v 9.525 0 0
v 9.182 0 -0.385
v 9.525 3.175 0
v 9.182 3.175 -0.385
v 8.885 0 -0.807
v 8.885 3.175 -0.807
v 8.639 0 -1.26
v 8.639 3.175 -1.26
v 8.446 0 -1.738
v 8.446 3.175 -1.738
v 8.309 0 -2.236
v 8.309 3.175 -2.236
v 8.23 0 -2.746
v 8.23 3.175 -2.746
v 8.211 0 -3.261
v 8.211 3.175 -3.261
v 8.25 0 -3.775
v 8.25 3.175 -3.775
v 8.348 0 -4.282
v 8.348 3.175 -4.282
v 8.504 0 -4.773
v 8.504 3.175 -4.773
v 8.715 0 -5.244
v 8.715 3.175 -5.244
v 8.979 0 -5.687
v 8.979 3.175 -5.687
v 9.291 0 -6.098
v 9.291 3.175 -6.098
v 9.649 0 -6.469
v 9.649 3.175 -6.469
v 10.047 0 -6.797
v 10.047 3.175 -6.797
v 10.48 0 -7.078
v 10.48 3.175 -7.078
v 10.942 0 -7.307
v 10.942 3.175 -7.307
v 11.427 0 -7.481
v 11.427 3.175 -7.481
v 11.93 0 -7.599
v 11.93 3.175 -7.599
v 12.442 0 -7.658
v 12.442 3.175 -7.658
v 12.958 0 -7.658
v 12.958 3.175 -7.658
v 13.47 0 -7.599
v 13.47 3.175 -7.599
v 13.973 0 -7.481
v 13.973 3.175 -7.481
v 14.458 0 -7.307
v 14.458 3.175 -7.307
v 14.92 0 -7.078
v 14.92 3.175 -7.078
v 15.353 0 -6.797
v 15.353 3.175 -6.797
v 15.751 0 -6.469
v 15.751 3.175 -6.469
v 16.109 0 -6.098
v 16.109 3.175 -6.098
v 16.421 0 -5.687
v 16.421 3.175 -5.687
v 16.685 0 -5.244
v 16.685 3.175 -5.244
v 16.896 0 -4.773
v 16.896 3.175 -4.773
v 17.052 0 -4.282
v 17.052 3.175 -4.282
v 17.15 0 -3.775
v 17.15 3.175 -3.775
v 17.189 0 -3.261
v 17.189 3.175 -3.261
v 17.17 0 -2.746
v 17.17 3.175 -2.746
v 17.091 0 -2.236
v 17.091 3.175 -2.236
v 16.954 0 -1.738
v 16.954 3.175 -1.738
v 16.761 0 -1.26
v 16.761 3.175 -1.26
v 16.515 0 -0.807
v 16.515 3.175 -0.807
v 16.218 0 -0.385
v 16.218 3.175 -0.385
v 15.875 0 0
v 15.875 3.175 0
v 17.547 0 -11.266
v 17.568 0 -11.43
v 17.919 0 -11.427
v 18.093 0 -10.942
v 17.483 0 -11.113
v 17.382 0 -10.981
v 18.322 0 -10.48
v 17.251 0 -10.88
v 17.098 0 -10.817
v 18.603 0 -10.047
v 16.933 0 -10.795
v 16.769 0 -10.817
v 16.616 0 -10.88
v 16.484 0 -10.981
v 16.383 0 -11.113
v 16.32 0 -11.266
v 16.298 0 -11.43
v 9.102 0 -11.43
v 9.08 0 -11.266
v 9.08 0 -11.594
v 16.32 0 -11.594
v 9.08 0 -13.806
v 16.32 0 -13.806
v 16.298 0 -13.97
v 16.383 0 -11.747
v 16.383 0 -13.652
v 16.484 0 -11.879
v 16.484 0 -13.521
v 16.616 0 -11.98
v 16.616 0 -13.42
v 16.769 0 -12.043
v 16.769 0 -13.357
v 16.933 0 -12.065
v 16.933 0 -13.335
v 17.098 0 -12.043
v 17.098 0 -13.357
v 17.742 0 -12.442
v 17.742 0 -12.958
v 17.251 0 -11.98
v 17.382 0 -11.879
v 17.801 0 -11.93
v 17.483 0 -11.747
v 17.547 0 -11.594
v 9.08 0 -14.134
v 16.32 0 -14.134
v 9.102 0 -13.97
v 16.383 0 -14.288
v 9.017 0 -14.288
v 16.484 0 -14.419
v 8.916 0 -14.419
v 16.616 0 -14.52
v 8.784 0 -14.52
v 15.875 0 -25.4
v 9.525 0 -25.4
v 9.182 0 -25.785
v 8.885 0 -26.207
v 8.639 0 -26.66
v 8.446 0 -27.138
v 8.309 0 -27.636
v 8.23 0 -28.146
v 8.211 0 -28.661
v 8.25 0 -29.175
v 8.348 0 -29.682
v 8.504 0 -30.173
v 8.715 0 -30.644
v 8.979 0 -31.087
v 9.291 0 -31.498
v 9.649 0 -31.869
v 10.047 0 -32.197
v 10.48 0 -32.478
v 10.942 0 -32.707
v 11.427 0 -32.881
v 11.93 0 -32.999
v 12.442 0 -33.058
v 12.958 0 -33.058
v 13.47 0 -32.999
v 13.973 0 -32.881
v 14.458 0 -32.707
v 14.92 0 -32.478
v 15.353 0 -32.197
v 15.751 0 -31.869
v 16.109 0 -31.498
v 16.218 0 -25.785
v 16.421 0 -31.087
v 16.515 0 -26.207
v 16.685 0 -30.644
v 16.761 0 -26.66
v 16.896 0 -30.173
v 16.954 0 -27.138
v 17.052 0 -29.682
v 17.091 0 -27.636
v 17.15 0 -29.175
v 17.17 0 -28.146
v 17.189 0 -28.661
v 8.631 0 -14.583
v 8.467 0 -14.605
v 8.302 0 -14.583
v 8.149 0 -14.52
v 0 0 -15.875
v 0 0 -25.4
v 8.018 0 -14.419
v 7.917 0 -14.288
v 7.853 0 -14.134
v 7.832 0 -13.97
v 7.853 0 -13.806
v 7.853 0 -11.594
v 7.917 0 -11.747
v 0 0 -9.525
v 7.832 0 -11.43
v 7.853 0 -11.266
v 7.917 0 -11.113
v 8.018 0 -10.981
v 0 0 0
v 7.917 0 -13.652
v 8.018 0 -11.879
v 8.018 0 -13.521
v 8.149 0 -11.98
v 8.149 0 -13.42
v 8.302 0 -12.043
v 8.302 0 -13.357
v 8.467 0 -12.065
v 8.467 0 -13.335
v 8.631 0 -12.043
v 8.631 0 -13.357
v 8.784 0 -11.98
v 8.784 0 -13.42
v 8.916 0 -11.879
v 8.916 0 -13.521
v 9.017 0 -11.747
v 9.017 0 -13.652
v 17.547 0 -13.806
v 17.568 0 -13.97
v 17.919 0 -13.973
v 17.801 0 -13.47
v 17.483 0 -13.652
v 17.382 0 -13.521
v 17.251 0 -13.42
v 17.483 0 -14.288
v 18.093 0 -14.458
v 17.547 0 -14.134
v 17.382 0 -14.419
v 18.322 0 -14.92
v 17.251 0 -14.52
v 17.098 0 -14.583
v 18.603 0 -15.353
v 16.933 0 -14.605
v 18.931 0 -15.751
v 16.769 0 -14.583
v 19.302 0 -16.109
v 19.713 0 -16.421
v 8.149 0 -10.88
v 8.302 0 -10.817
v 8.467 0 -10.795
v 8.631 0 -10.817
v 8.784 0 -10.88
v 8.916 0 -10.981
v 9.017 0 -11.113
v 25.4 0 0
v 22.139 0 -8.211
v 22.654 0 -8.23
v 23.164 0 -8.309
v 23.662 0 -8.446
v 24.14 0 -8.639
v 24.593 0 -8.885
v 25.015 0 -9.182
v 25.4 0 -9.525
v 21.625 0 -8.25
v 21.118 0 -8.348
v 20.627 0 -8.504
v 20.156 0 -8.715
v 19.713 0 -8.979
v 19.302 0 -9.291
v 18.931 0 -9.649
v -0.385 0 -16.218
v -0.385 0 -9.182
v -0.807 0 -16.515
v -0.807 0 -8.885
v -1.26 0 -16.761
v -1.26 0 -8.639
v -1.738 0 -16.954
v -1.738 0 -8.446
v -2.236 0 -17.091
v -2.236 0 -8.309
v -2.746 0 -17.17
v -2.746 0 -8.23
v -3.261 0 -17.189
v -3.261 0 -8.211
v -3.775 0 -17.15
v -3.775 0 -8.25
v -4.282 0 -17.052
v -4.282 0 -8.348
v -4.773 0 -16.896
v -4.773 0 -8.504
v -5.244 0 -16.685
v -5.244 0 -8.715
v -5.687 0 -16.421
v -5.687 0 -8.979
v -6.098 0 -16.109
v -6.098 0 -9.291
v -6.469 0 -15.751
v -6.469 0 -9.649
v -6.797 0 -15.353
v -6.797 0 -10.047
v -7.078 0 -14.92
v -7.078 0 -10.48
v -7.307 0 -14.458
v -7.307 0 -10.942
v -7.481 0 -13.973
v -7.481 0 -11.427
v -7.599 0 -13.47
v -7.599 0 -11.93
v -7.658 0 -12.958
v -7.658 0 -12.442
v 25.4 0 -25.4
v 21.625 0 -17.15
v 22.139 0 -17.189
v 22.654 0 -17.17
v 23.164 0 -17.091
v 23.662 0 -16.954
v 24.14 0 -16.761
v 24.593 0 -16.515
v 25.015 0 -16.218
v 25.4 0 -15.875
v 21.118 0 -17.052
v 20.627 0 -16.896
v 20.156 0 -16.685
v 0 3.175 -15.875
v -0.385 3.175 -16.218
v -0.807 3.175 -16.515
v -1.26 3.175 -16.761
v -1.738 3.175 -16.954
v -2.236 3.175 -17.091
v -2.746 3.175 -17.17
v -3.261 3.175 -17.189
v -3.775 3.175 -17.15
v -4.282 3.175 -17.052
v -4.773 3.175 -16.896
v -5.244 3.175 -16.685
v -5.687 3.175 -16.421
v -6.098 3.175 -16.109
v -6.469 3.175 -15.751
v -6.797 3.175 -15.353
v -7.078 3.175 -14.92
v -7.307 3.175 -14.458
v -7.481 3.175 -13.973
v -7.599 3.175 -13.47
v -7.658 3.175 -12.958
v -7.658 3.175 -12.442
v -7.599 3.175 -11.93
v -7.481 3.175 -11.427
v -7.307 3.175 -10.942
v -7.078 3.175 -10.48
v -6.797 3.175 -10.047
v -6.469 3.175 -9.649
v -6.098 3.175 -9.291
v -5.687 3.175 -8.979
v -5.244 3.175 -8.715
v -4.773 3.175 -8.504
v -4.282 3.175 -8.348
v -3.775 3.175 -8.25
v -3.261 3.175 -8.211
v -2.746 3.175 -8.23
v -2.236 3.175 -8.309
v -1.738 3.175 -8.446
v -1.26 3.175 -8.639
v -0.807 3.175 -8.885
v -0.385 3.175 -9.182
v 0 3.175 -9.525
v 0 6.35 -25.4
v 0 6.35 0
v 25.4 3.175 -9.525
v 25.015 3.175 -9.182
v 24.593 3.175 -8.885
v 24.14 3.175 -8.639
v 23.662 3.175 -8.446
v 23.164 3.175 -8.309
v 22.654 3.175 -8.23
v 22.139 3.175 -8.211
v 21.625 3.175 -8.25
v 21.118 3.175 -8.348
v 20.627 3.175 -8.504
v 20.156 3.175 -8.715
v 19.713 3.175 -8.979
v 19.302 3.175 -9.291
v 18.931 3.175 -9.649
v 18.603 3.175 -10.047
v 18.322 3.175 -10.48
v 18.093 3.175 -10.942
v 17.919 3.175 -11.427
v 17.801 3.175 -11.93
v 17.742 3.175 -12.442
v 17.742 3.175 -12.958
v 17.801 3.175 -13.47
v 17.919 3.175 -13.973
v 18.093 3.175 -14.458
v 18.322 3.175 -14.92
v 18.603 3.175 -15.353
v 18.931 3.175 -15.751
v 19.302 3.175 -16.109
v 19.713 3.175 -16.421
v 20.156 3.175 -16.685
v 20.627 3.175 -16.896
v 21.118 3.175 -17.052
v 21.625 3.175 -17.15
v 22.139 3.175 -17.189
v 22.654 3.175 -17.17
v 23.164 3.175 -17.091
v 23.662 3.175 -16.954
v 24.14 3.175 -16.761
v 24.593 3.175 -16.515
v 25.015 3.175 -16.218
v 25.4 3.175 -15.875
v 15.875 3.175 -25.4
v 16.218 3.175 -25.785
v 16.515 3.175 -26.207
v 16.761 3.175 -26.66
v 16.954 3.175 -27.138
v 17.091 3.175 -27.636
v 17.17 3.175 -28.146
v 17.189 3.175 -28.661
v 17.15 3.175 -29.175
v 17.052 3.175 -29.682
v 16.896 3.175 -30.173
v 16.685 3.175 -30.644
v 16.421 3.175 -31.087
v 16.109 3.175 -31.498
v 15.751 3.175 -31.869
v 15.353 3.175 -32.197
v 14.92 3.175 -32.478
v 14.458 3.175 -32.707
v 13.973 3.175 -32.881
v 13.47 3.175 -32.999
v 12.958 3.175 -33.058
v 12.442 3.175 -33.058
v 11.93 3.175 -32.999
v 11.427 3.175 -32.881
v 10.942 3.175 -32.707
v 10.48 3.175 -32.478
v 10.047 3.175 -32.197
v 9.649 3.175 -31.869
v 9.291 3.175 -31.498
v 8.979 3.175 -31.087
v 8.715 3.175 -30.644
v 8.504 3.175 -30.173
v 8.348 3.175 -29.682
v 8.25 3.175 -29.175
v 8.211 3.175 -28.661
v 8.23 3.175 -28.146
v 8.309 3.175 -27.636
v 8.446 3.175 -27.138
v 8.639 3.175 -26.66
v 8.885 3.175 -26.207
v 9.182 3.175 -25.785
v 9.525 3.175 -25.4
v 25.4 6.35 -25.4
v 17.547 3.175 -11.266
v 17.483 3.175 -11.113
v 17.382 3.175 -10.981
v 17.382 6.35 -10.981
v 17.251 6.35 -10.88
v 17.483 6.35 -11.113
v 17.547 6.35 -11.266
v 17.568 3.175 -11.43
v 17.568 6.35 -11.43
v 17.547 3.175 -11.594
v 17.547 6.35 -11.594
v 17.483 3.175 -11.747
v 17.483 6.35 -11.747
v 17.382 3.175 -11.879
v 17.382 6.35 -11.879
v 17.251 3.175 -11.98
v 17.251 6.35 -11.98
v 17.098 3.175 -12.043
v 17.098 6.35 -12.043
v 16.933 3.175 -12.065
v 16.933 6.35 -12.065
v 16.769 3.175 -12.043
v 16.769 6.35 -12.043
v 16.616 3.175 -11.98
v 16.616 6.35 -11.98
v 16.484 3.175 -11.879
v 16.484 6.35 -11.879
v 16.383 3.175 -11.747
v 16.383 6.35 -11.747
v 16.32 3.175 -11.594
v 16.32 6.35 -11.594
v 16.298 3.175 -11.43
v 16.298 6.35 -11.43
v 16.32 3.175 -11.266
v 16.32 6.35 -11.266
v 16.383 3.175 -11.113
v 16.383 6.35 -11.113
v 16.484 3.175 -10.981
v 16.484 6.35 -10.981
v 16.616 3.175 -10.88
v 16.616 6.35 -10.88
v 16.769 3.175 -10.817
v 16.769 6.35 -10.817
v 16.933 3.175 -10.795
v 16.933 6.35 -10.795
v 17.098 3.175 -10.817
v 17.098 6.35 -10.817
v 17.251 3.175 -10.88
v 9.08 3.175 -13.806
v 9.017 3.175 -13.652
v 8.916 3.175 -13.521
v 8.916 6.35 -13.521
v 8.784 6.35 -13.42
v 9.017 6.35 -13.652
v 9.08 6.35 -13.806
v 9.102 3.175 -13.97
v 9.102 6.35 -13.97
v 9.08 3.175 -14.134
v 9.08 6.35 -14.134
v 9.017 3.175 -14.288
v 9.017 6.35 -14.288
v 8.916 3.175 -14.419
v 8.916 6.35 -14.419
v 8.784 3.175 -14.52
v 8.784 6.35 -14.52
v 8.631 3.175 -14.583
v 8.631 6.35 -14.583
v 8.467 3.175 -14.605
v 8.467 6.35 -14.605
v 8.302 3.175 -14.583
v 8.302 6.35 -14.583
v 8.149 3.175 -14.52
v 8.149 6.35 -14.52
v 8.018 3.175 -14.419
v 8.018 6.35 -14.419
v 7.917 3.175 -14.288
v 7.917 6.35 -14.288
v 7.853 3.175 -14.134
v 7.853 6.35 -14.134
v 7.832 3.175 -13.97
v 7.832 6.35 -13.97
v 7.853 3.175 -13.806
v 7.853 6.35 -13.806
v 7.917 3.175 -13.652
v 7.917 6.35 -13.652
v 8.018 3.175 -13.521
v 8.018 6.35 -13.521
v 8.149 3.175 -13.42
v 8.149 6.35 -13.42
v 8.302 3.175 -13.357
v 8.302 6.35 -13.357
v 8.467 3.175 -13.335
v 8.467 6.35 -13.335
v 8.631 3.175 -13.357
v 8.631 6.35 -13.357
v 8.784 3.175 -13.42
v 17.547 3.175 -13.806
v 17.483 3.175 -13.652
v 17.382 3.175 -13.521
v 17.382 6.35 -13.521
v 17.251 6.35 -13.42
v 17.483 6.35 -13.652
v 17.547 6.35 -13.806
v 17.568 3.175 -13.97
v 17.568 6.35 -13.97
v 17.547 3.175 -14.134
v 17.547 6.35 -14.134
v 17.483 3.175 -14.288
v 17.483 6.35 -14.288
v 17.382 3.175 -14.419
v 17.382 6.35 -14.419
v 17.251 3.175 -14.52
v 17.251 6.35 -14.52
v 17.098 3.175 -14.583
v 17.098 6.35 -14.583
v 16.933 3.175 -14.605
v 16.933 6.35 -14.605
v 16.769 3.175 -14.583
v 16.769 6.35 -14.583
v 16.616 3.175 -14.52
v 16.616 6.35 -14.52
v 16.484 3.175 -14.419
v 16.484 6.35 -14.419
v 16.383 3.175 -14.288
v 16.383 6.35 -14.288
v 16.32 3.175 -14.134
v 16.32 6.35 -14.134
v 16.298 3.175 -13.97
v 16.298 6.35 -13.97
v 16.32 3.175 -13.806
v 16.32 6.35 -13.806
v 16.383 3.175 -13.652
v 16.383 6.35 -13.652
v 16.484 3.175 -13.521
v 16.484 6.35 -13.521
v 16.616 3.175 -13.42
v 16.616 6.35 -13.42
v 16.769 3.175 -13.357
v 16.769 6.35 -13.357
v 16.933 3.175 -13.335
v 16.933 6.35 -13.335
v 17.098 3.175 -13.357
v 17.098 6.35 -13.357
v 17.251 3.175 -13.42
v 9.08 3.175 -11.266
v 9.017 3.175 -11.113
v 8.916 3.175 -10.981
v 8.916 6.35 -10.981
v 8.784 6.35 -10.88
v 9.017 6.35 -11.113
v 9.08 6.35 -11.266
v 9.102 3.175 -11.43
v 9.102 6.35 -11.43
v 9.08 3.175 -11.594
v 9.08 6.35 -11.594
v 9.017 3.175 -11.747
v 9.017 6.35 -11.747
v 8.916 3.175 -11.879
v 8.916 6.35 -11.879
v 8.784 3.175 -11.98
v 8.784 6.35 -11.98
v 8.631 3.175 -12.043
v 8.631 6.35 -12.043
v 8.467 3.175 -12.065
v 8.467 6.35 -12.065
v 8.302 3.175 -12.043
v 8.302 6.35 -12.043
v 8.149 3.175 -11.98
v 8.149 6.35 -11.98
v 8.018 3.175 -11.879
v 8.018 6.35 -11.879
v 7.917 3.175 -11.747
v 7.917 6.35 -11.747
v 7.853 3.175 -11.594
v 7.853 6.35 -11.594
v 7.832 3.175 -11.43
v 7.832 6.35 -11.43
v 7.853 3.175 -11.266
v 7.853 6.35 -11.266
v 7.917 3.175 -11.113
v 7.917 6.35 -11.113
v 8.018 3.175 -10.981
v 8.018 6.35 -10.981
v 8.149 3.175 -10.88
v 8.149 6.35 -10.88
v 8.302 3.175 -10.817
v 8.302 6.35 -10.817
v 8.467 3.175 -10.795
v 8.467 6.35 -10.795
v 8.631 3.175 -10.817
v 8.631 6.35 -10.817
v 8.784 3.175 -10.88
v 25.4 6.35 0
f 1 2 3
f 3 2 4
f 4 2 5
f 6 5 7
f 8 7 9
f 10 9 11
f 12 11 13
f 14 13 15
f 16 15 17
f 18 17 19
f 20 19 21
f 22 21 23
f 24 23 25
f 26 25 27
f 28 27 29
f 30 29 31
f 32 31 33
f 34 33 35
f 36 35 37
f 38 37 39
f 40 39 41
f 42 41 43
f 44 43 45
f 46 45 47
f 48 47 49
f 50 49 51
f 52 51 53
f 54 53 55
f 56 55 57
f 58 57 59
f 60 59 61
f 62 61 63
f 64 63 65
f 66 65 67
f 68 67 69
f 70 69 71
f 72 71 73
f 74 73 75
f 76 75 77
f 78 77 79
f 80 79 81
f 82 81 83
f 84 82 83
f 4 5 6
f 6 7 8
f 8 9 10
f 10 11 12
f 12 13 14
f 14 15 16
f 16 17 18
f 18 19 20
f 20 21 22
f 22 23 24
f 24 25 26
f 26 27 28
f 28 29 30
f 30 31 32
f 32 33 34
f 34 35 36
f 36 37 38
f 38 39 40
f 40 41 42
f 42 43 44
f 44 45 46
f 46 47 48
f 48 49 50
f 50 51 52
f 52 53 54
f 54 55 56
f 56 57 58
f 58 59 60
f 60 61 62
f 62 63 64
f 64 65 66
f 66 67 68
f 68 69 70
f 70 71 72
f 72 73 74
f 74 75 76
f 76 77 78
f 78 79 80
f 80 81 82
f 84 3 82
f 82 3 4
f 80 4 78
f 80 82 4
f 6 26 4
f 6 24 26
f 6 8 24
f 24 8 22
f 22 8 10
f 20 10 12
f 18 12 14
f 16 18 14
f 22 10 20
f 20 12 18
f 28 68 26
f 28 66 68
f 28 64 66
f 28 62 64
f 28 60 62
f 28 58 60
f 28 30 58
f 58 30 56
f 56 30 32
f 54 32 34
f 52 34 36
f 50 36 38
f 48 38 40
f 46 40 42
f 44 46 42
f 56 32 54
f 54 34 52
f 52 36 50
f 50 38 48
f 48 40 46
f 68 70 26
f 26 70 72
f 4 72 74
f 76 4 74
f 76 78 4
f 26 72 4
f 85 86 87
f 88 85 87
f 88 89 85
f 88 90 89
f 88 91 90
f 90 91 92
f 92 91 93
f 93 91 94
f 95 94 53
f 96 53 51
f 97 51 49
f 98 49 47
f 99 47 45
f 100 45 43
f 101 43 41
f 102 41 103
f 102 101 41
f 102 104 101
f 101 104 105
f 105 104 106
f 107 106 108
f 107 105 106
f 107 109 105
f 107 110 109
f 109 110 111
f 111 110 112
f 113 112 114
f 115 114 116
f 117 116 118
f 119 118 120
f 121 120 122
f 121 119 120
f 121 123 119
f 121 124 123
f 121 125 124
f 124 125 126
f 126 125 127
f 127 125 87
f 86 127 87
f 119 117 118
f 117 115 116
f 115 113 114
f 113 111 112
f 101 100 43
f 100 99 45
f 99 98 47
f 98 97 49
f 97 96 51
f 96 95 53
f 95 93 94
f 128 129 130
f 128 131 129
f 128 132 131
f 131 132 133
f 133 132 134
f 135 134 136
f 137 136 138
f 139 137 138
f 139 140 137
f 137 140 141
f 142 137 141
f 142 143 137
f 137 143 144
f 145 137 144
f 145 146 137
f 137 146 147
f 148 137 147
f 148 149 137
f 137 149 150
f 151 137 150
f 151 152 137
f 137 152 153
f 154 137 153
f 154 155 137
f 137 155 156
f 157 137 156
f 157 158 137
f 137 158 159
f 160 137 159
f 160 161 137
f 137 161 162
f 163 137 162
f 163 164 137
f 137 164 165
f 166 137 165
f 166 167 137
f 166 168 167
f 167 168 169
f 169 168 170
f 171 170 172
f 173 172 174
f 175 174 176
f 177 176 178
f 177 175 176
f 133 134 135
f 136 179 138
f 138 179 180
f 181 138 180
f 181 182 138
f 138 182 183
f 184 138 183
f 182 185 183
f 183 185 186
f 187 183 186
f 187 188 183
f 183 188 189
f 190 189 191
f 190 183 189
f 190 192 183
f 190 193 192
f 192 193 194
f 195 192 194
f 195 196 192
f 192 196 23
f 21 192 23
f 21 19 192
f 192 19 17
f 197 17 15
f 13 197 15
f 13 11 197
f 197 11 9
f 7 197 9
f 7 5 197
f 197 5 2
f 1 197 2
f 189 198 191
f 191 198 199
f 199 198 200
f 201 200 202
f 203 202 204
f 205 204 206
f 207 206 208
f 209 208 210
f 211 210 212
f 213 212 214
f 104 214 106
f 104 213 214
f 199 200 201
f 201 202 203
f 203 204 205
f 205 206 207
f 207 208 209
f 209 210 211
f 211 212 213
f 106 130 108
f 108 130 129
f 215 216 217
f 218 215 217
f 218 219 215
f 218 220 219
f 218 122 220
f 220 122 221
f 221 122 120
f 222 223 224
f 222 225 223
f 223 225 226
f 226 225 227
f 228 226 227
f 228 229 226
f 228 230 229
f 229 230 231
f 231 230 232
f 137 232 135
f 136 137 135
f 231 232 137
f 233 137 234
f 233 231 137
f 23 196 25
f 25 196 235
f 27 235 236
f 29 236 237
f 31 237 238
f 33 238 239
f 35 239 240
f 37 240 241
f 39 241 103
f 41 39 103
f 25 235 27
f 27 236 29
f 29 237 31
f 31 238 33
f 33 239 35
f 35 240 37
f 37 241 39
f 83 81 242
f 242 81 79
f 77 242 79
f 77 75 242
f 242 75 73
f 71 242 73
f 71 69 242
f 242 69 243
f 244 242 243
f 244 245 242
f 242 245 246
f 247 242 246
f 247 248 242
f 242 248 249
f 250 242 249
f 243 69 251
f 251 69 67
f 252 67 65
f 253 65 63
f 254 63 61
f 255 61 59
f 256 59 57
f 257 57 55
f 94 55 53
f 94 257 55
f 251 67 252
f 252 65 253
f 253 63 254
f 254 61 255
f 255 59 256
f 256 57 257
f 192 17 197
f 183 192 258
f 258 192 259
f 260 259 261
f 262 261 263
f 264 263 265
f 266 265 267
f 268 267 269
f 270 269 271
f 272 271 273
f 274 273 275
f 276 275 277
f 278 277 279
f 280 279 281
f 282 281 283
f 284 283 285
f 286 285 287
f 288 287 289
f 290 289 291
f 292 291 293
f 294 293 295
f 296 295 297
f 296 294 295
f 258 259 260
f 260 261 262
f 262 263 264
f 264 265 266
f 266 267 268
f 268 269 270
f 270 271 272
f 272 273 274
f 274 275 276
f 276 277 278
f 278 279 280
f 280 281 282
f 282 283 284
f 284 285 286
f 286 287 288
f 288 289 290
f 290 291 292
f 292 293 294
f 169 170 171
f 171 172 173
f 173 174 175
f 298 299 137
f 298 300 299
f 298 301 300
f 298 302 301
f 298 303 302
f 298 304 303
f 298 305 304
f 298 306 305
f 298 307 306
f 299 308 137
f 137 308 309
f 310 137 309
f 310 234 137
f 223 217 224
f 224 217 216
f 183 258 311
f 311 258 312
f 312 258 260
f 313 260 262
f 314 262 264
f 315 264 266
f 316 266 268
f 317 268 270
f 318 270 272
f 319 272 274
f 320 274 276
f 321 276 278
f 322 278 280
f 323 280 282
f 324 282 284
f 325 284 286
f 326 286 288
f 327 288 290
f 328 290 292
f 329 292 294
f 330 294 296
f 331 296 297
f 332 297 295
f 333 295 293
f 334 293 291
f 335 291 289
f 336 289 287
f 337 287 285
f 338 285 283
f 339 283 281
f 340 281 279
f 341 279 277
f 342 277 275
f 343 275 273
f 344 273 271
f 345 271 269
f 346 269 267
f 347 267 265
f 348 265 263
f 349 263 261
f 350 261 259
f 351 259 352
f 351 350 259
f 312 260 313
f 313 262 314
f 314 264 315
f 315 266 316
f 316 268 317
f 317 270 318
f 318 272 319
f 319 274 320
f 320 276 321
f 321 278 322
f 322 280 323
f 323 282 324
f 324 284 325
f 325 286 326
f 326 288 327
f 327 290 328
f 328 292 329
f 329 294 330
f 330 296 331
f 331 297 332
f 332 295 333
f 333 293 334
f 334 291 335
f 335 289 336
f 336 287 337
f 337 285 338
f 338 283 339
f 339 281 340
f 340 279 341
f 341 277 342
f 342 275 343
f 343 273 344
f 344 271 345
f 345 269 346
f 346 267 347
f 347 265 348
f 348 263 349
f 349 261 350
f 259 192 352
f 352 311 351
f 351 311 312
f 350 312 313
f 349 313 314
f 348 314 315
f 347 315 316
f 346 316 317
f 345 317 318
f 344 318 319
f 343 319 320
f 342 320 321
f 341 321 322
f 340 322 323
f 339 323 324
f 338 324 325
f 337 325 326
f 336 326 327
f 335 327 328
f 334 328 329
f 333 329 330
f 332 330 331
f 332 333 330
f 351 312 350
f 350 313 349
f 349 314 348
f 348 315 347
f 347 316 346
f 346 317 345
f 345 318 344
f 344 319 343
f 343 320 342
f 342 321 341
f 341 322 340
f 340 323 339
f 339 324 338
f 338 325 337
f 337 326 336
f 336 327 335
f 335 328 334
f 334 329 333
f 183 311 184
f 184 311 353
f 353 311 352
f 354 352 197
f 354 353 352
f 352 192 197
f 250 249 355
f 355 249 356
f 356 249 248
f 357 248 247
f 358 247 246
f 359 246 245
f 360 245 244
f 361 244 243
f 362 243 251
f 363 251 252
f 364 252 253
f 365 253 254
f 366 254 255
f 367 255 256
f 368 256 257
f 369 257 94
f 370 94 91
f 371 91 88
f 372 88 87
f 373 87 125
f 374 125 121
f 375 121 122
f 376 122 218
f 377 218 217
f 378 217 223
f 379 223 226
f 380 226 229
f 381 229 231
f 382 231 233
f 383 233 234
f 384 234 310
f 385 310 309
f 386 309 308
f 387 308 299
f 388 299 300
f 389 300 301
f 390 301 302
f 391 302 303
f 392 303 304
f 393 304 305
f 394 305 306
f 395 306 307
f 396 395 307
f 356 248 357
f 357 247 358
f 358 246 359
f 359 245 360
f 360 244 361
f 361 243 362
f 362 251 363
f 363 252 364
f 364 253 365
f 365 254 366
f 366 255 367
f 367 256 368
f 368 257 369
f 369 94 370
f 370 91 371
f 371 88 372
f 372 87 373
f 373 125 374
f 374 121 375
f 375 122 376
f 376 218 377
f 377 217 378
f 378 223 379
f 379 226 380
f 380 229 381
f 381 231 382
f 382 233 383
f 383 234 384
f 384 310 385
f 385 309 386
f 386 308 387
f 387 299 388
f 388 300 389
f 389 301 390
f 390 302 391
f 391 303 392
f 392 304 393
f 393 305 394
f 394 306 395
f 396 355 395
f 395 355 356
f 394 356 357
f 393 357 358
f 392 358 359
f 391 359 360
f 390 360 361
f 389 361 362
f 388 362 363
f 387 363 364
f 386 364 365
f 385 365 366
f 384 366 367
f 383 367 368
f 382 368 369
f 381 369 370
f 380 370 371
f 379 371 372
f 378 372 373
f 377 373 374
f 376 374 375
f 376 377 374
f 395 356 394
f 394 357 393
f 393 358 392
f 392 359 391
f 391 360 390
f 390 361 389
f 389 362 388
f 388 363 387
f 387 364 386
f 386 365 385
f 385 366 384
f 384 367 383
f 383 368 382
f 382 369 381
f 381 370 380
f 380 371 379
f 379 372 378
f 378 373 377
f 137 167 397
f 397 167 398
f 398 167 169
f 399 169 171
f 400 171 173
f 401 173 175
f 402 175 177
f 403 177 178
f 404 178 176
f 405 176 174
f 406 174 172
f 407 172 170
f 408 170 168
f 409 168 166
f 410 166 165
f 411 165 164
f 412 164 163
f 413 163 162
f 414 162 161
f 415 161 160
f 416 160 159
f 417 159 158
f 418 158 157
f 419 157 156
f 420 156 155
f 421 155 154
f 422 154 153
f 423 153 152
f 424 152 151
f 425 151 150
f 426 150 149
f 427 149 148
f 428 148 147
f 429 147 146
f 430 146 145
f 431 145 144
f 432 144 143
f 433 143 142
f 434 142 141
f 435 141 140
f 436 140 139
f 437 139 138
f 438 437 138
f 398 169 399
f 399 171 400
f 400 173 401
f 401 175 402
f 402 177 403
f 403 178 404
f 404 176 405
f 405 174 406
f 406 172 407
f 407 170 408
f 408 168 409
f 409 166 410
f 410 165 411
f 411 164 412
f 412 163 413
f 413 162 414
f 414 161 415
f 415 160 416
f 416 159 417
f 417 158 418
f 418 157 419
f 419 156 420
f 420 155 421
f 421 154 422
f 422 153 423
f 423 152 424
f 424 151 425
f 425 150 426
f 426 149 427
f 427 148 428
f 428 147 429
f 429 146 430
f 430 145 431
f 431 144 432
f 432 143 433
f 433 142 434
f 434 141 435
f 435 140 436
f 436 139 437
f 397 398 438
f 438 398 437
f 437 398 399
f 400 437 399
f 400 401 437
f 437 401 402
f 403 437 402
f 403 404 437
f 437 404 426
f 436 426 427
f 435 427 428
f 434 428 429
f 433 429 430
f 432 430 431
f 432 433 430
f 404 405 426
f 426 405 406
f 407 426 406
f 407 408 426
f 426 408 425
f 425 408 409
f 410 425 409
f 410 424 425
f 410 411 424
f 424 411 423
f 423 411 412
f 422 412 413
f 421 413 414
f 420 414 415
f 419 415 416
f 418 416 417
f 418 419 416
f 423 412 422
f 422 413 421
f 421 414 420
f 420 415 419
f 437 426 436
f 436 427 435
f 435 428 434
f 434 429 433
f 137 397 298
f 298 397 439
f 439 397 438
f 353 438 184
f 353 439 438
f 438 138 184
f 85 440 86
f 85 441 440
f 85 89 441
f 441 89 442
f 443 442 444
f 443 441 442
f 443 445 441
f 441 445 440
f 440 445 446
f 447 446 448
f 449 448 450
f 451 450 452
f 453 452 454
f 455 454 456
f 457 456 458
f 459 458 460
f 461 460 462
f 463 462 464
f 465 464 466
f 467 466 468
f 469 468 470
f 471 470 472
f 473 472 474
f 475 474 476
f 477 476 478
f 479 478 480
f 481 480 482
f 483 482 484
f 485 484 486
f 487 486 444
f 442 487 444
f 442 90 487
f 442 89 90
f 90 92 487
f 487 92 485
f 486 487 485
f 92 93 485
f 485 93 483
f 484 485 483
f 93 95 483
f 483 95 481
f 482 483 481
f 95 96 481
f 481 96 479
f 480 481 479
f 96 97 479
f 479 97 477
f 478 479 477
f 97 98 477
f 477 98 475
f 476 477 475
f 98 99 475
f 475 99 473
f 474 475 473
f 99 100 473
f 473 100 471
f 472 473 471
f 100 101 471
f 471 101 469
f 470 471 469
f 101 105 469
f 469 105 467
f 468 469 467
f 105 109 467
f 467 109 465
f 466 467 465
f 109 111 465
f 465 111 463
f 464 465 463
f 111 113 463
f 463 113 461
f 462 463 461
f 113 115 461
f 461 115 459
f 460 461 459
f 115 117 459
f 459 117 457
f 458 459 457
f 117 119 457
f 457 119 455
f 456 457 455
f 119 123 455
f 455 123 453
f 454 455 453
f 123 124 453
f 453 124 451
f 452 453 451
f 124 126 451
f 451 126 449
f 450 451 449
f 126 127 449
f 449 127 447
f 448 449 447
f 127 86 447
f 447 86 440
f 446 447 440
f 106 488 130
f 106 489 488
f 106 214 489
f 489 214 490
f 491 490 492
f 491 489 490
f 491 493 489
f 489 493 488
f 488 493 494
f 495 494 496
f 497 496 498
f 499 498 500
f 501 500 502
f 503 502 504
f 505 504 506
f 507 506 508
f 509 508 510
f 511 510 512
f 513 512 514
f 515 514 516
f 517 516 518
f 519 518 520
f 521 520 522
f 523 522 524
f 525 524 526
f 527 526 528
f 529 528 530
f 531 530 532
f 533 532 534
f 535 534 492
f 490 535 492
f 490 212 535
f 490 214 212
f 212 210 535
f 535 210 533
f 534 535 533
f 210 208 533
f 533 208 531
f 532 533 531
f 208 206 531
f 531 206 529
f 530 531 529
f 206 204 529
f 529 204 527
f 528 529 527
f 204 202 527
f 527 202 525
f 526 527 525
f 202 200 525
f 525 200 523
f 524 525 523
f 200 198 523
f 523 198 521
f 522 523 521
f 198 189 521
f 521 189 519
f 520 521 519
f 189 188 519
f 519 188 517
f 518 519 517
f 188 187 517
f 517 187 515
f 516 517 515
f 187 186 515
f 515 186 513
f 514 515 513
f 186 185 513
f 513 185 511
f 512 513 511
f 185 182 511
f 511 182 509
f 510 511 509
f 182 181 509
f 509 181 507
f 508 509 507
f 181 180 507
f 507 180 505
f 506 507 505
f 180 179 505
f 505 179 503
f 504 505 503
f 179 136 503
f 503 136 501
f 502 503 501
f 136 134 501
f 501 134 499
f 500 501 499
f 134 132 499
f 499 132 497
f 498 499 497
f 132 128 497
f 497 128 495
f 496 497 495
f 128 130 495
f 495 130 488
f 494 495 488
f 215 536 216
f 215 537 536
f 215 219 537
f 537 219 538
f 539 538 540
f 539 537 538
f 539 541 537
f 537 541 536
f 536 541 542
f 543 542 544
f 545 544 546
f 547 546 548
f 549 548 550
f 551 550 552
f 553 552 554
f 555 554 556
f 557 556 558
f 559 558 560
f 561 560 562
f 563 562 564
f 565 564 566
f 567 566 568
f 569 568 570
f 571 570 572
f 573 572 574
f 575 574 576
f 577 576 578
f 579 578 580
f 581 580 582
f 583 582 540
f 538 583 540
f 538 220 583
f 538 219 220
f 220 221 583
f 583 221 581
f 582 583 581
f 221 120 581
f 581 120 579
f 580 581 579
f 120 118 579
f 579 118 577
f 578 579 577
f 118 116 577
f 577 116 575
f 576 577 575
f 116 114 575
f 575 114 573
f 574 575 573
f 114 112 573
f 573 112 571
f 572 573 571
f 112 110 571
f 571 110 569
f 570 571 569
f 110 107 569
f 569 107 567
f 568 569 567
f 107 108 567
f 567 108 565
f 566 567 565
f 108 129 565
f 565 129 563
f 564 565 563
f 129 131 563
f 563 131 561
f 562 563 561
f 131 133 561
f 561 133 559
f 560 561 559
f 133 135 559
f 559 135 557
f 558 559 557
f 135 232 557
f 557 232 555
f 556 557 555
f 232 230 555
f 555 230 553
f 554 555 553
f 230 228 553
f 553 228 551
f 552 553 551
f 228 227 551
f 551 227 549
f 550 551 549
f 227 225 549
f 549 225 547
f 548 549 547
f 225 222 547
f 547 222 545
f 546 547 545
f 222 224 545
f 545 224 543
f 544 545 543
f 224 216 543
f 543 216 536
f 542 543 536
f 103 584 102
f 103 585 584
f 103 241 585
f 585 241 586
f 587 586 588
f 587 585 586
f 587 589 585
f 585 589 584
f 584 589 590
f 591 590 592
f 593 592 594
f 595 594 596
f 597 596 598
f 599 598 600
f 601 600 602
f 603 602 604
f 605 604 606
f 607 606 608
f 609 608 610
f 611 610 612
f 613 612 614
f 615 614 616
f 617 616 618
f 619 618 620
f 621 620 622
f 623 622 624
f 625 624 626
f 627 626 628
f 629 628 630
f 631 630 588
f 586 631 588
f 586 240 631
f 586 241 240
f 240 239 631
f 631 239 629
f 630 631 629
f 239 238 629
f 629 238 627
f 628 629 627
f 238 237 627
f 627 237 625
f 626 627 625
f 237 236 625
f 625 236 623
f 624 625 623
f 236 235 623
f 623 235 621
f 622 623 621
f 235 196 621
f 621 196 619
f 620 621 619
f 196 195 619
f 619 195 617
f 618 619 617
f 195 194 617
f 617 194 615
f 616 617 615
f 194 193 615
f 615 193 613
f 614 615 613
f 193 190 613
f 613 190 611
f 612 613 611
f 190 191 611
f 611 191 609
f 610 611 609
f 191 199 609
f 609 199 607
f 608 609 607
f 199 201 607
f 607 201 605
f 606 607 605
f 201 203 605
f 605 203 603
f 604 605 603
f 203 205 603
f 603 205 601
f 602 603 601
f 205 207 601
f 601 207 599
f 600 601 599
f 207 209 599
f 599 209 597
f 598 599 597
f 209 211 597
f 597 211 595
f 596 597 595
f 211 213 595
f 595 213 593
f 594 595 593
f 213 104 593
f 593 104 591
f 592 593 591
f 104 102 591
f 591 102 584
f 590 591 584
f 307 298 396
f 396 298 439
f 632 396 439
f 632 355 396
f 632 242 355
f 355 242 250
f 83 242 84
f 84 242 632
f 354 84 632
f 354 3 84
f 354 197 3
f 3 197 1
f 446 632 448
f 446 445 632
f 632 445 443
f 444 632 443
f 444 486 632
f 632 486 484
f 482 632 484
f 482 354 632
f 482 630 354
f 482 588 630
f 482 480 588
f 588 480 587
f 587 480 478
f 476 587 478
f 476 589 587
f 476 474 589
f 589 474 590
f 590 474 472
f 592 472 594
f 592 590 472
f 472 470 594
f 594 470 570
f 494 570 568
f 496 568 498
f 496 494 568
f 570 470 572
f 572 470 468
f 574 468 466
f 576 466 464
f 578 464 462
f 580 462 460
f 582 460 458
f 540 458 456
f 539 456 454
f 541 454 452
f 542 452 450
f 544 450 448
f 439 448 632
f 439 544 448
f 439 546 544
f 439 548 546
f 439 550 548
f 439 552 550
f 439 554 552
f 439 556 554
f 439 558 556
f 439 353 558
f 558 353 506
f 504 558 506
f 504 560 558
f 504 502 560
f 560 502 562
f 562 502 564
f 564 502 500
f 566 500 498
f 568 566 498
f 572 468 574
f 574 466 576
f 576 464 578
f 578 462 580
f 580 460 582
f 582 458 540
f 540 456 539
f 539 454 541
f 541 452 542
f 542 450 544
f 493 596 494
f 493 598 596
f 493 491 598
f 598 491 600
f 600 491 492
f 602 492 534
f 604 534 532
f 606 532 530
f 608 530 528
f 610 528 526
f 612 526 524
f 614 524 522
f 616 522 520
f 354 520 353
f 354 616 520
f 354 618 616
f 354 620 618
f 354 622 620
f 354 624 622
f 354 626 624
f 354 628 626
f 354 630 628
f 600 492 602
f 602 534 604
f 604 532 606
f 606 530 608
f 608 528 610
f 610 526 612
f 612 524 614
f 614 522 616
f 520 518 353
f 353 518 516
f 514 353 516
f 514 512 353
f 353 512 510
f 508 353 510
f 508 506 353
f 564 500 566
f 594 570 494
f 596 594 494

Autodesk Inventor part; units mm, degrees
ref_plane "YZ Plane" through (0, 0, 0) normal (1, 0, 0) x (0, 1, 0)
ref_plane "XZ Plane" through (0, 0, 0) normal (0, 1, 0) x (-1, 0, 0)
ref_plane "XY Plane" through (0, 0, 0) normal (0, 0, 1) x (1, 0, 0)
sketch "Sketch1" plane through (0, 0, 0) normal (0, 1, 0) x (-1, 0, 0)
  line L0 (0, 0) -> (-25.4, 0)
  line L1 (-25.4, 0) -> (-25.4, -25.4)
  line L2 (-25.4, -25.4) -> (0, -25.4)
  line L3 (0, -25.4) -> (0, 0)
  dimension "d0" = 25.4
extrude "Extrusion1" add sketch "Sketch1" along normal blind 6.35
sketch "Sketch2" plane through (0, 6.35, 0) normal (0, 1, 0) x (1, 0, 0)
  circle A0 centre (8.4667, 13.97) radius 0.635
  circle A1 centre (16.9333, 13.97) radius 0.635
  circle A2 centre (16.9333, 11.43) radius 0.635
  circle A3 centre (8.4667, 11.43) radius 0.635
  line L0 (25.4, 0) -> (25.4, 25.4) projected
  line L1 (0, 0) -> (25.4, 0) projected
  dimension "d3" = 8.4667
  dimension "d4" = 8.4667
  dimension "d5" = 2.54
  dimension "d6" = 1.27
  dimension "d7" = 11.43
extrude "Extrusion2" cut sketch "Sketch2" against normal blind 6.35
sketch "Sketch4" plane through (0, 0, 0) normal (0, -1, 0) x (1, 0, 0)
  line L0 (25.4, -25.4) -> (0, -25.4) projected
  arc A0 (9.525, -25.4) -> (15.875, -25.4) centre (12.7, -28.575) ccw
  line L1 (15.875, -25.4) -> (9.525, -25.4)
  point P0 (0, 0)
  dimension "d10" = 90
  dimension "d11" = 6.35
  dimension "d12" = 9.525
extrude "Extrusion3" add sketch "Sketch4" against normal blind 3.175
sketch "Sketch6" plane through (0, 0, 0) normal (0, -1, 0) x (1, 0, 0)
  line L0 (25.4, 0) -> (25.4, -25.4) projected
  arc A0 (25.4, -9.525) -> (25.4, -15.875) centre (22.225, -12.7) ccw
  line L1 (25.4, -15.875) -> (25.4, -9.525)
  point P0 (0, 0)
  dimension "d21" = 6.35
  dimension "d22" = 90
  dimension "d23" = 9.525
extrude "Extrusion5" cut sketch "Sketch6" against normal blind 3.175
sketch "Sketch7" plane through (0, 0, 0) normal (0, -1, 0) x (1, 0, 0)
  line L0 (0, -25.4) -> (0, 0) projected
  arc A0 (0, -9.525) -> (0, -15.875) centre (-3.175, -12.7) ccw
  line L1 (0, -15.875) -> (0, -9.525)
  dimension "d26" = 6.35
  dimension "d27" = 90
  dimension "d28" = 9.525
extrude "Extrusion6" add sketch "Sketch7" against normal blind 3.175
sketch "Sketch8" plane through (0, 0, 0) normal (0, -1, 0) x (1, 0, 0)
  line L0 (0, 0) -> (25.4, 0) projected
  arc A0 (9.525, 0) -> (15.875, 0) centre (12.7, -3.175) ccw
  line L1 (15.875, 0) -> (9.525, 0)
  dimension "d31" = 90
  dimension "d32" = 6.35
  dimension "d33" = 9.525
extrude "Extrusion7" cut sketch "Sketch8" against normal blind 3.175
equation "\"d1\" = 0.25 * d0"
equation "\"d3\" = 0.333333 * d0"
equation "\"d4\" = d3"
equation "\"d8\" = 0.25 * d0"
equation "\"d11\" = 0.25 * d0"
equation "\"d12\" = 0.375 * d0"
equation "\"d13\" = 0.5 * d1"
equation "\"d21\" = 0.25 * d0"
equation "\"d23\" = 0.375 * d0"
equation "\"d24\" = 0.5 * d1"
equation "\"d26\" = 0.25 * d0"
equation "\"d28\" = 0.375 * d0"
equation "\"d29\" = 0.5 * d1"
equation "\"d32\" = 0.25 * d0"
equation "\"d33\" = 0.375 * d0"
equation "\"d34\" = 0.5 * d1"
properties part number "pieceBase"
